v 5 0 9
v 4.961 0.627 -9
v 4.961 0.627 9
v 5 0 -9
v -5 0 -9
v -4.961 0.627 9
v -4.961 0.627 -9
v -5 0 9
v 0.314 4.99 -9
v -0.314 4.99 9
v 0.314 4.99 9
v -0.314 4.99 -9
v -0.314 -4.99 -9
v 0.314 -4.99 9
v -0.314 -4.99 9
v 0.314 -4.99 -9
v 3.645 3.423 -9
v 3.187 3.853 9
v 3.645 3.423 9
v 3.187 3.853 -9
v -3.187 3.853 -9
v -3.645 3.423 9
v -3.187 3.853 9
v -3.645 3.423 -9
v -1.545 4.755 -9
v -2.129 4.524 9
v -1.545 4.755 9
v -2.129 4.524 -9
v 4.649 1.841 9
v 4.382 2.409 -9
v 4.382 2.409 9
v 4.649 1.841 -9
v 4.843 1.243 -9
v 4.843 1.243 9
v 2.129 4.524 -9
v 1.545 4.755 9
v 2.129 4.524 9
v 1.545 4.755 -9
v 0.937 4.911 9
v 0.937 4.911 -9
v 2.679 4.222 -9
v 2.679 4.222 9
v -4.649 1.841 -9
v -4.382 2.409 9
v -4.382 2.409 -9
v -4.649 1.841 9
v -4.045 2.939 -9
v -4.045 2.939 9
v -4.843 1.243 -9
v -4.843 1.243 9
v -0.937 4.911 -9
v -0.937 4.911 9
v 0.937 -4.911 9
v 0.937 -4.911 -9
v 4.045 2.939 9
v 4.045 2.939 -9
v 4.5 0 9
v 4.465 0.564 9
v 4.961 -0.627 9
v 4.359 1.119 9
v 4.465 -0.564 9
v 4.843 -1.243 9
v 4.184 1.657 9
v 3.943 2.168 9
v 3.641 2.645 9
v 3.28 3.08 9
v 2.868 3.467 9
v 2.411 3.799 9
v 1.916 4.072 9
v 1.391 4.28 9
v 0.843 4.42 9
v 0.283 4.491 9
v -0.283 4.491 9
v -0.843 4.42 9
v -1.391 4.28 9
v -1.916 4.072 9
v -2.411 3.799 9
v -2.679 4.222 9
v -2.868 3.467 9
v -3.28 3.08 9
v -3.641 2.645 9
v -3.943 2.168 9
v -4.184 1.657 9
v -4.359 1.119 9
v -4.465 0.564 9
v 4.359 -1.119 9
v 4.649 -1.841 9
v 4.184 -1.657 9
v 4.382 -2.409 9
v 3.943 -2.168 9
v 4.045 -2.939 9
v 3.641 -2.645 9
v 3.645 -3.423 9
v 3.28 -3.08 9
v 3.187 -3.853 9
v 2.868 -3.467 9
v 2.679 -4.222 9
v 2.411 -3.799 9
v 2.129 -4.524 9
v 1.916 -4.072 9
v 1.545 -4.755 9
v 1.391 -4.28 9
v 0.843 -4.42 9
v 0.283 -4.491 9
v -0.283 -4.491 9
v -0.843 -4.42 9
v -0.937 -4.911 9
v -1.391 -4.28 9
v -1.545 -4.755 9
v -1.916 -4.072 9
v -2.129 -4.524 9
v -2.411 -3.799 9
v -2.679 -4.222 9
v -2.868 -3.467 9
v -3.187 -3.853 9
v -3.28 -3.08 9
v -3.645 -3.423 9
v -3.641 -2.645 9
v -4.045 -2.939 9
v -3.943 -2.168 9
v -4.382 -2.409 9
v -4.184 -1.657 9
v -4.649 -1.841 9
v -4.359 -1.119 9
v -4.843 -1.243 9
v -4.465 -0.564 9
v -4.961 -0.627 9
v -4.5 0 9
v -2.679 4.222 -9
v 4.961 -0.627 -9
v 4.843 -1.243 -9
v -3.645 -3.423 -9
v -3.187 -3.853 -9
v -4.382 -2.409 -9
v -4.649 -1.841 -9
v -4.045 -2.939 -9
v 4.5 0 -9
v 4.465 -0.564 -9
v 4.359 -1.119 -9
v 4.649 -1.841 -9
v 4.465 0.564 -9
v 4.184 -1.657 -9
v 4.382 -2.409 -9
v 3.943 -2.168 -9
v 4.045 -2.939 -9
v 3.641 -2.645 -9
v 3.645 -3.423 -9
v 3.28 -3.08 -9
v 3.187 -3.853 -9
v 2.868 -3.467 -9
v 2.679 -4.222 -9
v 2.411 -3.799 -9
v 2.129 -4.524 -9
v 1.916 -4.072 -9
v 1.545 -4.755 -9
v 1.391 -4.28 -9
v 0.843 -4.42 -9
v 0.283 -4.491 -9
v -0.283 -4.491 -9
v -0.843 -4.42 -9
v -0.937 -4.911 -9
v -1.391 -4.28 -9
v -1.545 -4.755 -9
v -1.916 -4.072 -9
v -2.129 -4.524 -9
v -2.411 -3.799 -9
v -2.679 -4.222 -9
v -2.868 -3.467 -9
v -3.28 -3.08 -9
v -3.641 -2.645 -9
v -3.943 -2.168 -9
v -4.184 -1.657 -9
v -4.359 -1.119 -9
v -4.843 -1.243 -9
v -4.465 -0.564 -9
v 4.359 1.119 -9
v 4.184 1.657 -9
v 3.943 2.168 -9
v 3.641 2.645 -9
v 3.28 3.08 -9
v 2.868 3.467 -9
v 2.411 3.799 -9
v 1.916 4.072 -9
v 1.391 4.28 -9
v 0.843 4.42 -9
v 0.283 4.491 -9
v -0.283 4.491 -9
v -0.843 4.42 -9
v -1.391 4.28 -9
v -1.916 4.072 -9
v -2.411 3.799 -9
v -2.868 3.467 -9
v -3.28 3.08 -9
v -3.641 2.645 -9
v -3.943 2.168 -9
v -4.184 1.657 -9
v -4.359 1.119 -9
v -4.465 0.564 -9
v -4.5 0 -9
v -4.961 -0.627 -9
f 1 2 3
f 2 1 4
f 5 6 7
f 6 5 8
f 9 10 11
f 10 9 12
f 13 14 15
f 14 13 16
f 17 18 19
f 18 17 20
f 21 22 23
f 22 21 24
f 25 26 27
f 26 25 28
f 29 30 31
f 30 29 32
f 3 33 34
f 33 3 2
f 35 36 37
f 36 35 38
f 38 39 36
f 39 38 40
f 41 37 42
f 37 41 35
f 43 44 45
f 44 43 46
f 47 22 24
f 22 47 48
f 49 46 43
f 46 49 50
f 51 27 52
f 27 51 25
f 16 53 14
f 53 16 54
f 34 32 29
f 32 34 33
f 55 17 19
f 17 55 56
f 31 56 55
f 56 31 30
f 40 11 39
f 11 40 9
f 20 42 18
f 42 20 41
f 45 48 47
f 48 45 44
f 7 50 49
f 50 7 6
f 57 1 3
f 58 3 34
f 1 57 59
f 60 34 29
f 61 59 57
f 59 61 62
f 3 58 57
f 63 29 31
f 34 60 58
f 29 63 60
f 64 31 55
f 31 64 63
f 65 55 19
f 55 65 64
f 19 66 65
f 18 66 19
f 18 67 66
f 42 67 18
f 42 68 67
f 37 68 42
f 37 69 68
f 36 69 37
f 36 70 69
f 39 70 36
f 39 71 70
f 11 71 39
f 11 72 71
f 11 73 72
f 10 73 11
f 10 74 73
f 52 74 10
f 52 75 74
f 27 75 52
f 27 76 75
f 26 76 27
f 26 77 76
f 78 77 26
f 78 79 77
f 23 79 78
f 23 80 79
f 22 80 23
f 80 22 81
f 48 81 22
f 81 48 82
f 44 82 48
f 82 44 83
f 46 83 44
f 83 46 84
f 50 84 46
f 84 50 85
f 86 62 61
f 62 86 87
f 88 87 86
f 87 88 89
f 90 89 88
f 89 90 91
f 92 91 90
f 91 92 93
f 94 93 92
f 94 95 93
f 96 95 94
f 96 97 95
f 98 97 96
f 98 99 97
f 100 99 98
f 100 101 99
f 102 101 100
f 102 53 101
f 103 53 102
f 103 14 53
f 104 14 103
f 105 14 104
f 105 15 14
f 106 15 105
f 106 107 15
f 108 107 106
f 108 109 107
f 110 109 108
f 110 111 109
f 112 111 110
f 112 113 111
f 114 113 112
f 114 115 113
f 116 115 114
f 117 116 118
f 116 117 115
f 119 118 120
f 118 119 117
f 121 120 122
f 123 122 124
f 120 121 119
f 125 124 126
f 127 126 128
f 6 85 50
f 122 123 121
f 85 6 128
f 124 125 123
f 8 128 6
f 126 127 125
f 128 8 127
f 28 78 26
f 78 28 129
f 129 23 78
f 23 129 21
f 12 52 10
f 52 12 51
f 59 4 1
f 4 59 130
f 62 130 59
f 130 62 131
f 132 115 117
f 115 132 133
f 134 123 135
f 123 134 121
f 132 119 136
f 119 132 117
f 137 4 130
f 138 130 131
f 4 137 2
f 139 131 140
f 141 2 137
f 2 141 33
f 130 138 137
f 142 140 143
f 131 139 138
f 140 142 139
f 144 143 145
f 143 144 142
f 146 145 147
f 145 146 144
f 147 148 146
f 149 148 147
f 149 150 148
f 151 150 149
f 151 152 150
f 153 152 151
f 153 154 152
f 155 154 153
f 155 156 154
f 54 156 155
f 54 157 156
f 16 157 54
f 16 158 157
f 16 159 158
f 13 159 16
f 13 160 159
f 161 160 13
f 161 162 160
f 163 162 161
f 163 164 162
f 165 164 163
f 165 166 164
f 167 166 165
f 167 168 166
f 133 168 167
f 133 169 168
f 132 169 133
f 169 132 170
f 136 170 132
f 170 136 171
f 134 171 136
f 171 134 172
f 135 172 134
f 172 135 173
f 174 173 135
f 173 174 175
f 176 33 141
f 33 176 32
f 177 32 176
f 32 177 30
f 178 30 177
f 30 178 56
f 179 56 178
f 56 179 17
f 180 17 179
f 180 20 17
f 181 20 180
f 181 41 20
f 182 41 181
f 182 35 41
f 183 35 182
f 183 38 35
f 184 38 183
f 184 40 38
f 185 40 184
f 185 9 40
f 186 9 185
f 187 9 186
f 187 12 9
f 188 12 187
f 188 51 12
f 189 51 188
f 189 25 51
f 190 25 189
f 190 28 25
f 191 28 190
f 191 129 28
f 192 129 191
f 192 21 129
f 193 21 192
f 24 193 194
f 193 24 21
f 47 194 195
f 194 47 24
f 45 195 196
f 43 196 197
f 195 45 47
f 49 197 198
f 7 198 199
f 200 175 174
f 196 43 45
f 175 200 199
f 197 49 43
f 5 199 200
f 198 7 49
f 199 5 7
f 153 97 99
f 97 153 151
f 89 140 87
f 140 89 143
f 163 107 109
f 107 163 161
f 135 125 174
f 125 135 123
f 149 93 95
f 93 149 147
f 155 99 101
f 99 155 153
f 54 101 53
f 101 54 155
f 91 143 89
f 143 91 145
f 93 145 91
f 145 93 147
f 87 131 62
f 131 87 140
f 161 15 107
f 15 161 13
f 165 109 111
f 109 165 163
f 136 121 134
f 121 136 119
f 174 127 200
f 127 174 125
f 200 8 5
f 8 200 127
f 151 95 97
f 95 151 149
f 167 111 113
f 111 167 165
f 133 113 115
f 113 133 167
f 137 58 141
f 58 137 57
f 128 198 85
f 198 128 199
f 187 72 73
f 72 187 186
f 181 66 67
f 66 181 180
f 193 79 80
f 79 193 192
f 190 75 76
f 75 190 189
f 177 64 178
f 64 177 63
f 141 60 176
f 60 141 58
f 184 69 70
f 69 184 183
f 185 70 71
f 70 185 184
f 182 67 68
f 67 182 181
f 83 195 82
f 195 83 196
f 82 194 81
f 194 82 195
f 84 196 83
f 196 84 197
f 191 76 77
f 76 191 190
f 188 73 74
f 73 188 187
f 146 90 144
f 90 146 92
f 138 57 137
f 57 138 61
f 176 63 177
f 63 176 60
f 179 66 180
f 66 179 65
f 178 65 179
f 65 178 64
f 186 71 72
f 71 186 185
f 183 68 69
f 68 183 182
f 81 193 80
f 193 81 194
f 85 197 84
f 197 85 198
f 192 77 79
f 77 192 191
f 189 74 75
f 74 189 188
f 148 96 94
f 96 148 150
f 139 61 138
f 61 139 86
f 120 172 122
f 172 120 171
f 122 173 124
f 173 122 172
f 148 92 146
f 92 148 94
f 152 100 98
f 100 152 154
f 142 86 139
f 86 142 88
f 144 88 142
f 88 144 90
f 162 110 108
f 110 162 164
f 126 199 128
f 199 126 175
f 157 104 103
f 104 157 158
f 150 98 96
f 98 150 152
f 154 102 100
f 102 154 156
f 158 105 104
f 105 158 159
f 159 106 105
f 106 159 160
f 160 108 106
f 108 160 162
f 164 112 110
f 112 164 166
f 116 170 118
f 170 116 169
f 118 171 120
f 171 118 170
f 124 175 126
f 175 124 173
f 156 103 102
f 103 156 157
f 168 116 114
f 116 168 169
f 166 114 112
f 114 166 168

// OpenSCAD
$fn = 50;


difference() {
	union() {
		translate(v = [0, 0, -9.0000000000]) {
			cylinder(h = 18, r = 5.0000000000);
		}
	}
	union() {
		translate(v = [0, 0, -100.0000000000]) {
			cylinder(h = 200, r = 4.5000000000);
		}
	}
}
